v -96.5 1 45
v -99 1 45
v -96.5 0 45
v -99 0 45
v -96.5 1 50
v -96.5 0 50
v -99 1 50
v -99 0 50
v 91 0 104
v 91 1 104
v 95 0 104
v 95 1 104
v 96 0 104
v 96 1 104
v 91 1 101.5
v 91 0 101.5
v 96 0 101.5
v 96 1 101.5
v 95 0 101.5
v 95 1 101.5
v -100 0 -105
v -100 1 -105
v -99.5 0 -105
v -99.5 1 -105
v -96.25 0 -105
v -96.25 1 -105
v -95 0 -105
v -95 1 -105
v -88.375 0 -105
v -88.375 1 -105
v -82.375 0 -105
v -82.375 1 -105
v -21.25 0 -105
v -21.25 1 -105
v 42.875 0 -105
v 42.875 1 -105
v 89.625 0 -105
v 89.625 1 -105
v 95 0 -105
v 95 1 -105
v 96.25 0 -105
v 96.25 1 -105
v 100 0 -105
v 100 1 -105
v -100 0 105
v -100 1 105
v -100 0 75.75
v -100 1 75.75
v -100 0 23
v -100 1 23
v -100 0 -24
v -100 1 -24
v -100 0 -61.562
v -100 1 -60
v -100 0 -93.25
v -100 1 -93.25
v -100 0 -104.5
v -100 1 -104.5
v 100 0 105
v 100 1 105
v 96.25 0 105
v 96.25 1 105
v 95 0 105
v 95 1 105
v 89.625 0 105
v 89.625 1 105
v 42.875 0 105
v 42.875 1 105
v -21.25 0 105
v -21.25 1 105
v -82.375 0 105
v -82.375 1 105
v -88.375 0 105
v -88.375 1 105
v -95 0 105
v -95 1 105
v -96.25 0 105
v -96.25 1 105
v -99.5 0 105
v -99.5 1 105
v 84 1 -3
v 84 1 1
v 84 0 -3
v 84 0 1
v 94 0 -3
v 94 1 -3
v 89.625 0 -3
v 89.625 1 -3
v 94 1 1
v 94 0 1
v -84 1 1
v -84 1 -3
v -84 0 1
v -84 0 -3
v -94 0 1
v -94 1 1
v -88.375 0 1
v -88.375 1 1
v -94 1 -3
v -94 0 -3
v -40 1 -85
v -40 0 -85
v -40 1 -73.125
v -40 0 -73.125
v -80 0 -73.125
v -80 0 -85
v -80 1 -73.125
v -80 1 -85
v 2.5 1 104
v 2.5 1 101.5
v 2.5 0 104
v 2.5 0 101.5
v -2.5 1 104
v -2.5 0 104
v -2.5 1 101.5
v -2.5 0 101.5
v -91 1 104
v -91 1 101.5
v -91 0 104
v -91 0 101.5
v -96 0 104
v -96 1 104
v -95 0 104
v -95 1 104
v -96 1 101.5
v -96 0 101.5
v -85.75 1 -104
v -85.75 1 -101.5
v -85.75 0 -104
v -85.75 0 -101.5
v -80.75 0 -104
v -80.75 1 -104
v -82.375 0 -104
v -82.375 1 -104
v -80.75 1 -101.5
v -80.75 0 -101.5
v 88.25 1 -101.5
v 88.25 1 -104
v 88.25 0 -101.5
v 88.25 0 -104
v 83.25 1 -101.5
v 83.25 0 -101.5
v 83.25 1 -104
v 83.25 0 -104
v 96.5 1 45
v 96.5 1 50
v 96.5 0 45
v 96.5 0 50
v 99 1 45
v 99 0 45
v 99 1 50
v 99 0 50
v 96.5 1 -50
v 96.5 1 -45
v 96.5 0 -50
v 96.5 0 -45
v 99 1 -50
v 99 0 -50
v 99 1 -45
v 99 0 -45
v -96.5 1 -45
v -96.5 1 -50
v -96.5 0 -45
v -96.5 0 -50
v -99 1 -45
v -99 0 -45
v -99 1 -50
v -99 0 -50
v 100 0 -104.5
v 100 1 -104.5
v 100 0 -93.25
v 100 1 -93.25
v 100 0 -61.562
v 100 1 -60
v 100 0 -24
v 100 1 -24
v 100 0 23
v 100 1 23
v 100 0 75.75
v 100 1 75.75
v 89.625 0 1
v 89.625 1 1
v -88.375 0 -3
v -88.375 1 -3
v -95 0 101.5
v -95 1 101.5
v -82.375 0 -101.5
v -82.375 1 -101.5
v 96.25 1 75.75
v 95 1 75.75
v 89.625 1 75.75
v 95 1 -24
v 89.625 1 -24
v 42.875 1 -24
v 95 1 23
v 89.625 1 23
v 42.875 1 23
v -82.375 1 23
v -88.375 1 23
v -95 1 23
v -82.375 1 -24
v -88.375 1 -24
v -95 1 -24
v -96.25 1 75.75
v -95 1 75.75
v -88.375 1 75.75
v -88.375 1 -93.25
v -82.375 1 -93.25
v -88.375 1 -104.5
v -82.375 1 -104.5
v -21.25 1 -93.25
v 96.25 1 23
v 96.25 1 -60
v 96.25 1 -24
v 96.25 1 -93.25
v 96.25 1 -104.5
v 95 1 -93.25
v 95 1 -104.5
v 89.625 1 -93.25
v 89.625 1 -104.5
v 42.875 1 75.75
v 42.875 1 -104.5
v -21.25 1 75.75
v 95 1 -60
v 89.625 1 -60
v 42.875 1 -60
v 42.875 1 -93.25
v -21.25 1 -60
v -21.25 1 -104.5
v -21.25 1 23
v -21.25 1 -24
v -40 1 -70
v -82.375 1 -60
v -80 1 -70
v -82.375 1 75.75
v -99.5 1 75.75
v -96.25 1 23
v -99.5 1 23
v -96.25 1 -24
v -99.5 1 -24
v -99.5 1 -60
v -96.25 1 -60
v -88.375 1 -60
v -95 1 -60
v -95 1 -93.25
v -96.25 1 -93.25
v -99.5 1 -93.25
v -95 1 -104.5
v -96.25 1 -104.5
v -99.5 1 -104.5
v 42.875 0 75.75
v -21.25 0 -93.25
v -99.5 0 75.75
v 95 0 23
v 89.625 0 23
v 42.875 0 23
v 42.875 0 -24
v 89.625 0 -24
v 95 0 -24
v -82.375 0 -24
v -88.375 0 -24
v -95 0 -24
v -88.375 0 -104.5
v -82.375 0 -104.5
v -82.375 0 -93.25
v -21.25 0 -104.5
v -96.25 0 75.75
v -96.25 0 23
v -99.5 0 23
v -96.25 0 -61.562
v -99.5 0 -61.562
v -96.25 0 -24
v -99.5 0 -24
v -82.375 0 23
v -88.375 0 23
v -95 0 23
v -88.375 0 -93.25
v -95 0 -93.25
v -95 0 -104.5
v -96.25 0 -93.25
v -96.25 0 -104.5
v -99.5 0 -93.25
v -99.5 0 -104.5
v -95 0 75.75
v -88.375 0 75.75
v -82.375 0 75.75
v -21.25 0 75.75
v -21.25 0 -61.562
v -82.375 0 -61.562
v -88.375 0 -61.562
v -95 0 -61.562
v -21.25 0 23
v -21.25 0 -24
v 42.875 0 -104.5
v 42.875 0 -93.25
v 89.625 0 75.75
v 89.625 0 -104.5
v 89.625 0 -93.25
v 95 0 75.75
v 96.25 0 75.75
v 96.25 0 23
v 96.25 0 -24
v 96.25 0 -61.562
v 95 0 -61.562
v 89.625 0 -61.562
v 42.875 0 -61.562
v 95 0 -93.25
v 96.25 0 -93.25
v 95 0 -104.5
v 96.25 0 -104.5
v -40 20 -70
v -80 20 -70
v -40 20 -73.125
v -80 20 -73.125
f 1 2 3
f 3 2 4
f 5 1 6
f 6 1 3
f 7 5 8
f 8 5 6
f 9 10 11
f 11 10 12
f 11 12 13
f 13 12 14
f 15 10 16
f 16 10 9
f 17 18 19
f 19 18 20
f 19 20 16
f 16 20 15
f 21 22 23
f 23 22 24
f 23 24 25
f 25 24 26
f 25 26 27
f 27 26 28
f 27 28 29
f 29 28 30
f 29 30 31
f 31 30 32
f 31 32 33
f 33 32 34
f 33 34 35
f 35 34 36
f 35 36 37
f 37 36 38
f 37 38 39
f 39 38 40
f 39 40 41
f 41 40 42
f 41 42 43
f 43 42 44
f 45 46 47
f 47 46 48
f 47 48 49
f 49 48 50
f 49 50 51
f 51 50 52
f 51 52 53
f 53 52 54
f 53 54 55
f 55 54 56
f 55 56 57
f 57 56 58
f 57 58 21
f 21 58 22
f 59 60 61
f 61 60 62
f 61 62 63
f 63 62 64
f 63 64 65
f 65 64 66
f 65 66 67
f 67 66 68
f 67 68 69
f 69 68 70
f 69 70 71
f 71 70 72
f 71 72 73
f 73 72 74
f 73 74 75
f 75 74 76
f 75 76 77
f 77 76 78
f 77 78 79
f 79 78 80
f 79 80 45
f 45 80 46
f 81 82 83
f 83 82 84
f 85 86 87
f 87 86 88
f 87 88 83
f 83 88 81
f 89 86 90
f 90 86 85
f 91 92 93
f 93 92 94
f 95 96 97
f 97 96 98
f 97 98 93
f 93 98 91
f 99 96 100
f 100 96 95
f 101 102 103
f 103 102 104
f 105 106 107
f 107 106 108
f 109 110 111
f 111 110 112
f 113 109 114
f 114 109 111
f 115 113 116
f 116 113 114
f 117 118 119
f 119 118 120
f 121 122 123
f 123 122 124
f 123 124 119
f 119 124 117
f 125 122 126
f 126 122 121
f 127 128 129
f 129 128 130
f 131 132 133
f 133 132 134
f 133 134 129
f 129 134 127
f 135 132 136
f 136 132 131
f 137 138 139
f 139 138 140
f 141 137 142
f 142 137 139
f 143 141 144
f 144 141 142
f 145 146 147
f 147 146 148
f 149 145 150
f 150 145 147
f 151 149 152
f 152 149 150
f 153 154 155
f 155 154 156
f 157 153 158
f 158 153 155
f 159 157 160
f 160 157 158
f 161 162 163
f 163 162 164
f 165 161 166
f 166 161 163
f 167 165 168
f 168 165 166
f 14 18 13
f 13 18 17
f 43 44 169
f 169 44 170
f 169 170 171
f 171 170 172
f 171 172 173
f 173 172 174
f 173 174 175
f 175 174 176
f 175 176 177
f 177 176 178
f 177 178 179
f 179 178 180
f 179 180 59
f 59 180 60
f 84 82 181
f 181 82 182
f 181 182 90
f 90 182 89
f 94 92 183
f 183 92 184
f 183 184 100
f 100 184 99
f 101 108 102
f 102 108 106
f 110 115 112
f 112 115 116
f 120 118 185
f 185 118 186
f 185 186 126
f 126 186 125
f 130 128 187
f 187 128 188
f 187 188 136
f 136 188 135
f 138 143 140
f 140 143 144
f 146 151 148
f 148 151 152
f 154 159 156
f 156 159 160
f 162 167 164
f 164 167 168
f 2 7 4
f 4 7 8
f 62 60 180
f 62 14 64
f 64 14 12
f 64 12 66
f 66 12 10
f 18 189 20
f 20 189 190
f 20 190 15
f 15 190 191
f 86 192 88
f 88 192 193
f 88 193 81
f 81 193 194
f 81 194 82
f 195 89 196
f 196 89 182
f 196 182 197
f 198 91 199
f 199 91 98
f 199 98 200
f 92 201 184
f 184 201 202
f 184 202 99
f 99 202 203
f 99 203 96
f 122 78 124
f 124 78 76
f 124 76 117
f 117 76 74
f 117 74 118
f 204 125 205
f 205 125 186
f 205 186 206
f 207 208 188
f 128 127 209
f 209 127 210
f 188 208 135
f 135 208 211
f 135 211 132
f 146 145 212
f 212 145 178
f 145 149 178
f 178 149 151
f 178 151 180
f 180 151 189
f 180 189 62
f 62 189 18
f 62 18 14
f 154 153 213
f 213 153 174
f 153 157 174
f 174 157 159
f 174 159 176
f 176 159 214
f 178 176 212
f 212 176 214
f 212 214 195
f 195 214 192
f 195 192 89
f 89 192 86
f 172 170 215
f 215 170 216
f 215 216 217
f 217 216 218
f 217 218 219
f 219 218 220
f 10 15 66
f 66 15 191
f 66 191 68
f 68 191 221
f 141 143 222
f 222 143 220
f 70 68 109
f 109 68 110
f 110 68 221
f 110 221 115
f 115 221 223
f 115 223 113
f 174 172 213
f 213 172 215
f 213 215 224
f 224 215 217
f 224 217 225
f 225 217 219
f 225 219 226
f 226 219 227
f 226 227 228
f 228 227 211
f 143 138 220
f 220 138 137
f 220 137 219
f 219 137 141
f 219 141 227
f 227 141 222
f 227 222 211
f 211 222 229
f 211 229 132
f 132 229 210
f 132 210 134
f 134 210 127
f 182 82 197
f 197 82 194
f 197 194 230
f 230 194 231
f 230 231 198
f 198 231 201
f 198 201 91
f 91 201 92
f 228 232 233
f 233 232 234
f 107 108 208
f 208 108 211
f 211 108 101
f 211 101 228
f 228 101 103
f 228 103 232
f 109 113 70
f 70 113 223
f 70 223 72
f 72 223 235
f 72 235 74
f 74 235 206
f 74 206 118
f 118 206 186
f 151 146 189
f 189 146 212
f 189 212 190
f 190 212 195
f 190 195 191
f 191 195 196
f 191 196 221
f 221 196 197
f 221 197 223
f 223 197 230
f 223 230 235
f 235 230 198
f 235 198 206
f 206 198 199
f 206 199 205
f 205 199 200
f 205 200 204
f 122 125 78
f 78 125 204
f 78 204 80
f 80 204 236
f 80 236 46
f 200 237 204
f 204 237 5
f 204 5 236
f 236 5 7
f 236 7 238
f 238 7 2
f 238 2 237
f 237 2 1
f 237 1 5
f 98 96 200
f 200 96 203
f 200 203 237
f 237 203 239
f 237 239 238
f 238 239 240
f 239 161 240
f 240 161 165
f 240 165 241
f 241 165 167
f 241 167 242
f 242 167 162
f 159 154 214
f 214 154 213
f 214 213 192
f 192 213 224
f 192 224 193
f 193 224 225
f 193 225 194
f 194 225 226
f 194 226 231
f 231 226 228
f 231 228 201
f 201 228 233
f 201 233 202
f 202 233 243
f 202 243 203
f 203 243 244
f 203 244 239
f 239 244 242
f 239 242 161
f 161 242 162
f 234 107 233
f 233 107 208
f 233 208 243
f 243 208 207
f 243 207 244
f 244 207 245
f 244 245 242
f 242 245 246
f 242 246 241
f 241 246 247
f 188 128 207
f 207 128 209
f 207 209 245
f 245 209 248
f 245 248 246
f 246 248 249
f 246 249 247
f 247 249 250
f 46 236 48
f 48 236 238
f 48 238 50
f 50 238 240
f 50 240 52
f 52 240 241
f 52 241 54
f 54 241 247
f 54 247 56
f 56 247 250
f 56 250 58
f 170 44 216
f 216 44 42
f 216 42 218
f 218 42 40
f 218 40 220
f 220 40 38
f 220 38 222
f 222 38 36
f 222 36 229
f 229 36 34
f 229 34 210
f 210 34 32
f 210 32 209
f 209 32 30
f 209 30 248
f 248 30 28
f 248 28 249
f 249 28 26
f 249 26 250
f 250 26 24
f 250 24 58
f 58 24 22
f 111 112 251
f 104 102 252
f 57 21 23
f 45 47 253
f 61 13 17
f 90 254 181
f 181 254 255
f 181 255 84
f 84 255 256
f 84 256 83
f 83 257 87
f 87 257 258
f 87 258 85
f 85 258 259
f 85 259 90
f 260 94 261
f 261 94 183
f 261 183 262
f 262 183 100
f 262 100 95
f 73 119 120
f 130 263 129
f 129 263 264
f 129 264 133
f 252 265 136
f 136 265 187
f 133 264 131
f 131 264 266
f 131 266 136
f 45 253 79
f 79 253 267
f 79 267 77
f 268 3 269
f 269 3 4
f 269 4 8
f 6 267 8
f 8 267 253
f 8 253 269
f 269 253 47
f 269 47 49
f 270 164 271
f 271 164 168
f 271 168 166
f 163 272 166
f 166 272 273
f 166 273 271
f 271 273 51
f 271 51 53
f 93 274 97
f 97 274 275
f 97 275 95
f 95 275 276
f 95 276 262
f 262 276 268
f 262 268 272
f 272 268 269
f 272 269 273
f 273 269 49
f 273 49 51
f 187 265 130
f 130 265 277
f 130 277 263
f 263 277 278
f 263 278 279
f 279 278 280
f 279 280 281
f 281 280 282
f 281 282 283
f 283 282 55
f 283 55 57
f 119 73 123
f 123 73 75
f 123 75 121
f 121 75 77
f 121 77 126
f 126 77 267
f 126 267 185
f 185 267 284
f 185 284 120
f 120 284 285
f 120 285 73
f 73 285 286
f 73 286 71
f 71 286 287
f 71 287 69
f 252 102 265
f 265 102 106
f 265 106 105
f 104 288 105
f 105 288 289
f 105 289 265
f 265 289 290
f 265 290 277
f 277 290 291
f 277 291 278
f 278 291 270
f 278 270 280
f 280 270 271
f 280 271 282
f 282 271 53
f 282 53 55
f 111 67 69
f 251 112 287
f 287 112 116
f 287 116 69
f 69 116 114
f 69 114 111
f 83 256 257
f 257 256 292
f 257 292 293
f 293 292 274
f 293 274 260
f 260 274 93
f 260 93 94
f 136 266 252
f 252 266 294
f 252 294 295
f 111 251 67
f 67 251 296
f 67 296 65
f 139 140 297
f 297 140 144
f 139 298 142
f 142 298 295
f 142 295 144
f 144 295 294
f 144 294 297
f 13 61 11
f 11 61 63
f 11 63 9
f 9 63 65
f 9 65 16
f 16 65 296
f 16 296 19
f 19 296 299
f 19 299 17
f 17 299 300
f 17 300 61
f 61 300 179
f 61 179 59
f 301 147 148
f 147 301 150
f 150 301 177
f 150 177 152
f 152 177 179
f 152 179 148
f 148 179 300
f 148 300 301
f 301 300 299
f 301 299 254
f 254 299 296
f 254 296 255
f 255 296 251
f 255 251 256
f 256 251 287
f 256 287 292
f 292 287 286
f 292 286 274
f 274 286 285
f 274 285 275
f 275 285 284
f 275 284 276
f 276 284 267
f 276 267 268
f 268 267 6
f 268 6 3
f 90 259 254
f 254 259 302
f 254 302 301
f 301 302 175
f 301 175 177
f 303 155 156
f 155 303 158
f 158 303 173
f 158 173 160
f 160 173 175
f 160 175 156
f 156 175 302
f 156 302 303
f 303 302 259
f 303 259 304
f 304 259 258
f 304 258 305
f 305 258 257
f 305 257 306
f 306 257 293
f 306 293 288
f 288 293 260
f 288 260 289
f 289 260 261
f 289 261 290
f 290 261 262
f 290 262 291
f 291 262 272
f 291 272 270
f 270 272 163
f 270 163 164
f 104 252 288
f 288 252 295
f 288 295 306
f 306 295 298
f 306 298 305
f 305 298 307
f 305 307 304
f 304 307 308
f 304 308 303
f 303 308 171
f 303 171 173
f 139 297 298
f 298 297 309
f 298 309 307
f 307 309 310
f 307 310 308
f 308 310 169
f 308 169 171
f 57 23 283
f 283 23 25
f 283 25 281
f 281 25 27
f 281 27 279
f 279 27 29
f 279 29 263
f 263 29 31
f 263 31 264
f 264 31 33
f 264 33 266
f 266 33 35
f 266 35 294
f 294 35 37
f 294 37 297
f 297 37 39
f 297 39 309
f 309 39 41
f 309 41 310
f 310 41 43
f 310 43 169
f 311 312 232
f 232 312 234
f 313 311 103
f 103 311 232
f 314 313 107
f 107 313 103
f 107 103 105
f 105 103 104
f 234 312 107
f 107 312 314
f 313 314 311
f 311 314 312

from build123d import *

# Parameters (mm, degrees)
SKETCH1_W           = 200
SKETCH1_H           = 210
SKETCH1_W_2         = 5
SKETCH1_H_2         = 2.5
SKETCH1_W_3         = 2.5
SKETCH1_H_3         = 5
SKETCH1_W_4         = 10
SKETCH1_H_4         = 4
MAINBODY_DEPTH      = 1
SKETCH1_8_W         = 40
SKETCH1_8_H         = 3.124603495
BOSS_EXTRUDE1_DEPTH = 20


with BuildPart() as part:
    # Sketch1 → MainBody (new body)
    with BuildSketch(Plane(origin=(0, 0, 0), x_dir=(1, 0, 0), z_dir=(0, 1, 0))):
        Rectangle(SKETCH1_W, SKETCH1_H)
        with Locations((-93.5, -102.75)):
            Rectangle(SKETCH1_W_2, SKETCH1_H_2, mode=Mode.SUBTRACT)
        with Locations((-97.75, -47.5)):
            Rectangle(SKETCH1_W_3, SKETCH1_H_3, mode=Mode.SUBTRACT)
        with Locations((0, -102.75)):
            Rectangle(SKETCH1_W_2, SKETCH1_H_2, mode=Mode.SUBTRACT)
        with Locations((93.5, -102.75)):
            Rectangle(SKETCH1_W_2, SKETCH1_H_2, mode=Mode.SUBTRACT)
        with Locations((97.75, -47.5)):
            Rectangle(SKETCH1_W_3, SKETCH1_H_3, mode=Mode.SUBTRACT)
        with Locations((-89, 1)):
            Rectangle(SKETCH1_W_4, SKETCH1_H_4, mode=Mode.SUBTRACT)
        with Locations((-97.75, 47.5)):
            Rectangle(SKETCH1_W_3, SKETCH1_H_3, mode=Mode.SUBTRACT)
        Polygon((-80, 70), (-80, 73.124603495), (-80, 85), (-40, 85), (-40, 73.124603495), (-40, 70), align=None, mode=Mode.SUBTRACT)
        with Locations((-83.25, 102.75)):
            Rectangle(SKETCH1_W_2, SKETCH1_H_2, mode=Mode.SUBTRACT)
        with Locations((89, 1)):
            Rectangle(SKETCH1_W_4, SKETCH1_H_4, mode=Mode.SUBTRACT)
        with Locations((97.75, 47.5)):
            Rectangle(SKETCH1_W_3, SKETCH1_H_3, mode=Mode.SUBTRACT)
        with Locations((85.75, 102.75)):
            Rectangle(SKETCH1_W_2, SKETCH1_H_2, mode=Mode.SUBTRACT)
    extrude(amount=MAINBODY_DEPTH)

    # Sketch1<8> → Boss-Extrude1 (add)
    with BuildSketch(Plane(origin=(0, 0, 0), x_dir=(1, 0, 0), z_dir=(0, 1, 0))):
        with Locations((-60, 71.562301748)):
            Rectangle(SKETCH1_8_W, SKETCH1_8_H)
    extrude(amount=BOSS_EXTRUDE1_DEPTH)


solid = part.part
